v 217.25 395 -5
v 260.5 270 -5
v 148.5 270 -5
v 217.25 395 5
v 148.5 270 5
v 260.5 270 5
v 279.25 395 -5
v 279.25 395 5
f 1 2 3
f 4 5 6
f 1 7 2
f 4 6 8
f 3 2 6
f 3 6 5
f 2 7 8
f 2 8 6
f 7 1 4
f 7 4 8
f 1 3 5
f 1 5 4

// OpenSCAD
polyhedron(points=[[217.25, 395.0, -5.0], [148.5, 270.0, -5.0], [260.5, 270.0, -5.0], [217.25, 395.0, 5.0], [148.5, 270.0, 5.0], [260.5, 270.0, 5.0], [279.25, 395.0, -5.0], [279.25, 395.0, 5.0]], faces=[[0, 2, 1], [3, 4, 5], [0, 6, 2], [3, 5, 7], [1, 2, 5], [1, 5, 4], [2, 6, 7], [2, 7, 5], [6, 0, 3], [6, 3, 7], [0, 1, 4], [0, 4, 3]], convexity=20);
